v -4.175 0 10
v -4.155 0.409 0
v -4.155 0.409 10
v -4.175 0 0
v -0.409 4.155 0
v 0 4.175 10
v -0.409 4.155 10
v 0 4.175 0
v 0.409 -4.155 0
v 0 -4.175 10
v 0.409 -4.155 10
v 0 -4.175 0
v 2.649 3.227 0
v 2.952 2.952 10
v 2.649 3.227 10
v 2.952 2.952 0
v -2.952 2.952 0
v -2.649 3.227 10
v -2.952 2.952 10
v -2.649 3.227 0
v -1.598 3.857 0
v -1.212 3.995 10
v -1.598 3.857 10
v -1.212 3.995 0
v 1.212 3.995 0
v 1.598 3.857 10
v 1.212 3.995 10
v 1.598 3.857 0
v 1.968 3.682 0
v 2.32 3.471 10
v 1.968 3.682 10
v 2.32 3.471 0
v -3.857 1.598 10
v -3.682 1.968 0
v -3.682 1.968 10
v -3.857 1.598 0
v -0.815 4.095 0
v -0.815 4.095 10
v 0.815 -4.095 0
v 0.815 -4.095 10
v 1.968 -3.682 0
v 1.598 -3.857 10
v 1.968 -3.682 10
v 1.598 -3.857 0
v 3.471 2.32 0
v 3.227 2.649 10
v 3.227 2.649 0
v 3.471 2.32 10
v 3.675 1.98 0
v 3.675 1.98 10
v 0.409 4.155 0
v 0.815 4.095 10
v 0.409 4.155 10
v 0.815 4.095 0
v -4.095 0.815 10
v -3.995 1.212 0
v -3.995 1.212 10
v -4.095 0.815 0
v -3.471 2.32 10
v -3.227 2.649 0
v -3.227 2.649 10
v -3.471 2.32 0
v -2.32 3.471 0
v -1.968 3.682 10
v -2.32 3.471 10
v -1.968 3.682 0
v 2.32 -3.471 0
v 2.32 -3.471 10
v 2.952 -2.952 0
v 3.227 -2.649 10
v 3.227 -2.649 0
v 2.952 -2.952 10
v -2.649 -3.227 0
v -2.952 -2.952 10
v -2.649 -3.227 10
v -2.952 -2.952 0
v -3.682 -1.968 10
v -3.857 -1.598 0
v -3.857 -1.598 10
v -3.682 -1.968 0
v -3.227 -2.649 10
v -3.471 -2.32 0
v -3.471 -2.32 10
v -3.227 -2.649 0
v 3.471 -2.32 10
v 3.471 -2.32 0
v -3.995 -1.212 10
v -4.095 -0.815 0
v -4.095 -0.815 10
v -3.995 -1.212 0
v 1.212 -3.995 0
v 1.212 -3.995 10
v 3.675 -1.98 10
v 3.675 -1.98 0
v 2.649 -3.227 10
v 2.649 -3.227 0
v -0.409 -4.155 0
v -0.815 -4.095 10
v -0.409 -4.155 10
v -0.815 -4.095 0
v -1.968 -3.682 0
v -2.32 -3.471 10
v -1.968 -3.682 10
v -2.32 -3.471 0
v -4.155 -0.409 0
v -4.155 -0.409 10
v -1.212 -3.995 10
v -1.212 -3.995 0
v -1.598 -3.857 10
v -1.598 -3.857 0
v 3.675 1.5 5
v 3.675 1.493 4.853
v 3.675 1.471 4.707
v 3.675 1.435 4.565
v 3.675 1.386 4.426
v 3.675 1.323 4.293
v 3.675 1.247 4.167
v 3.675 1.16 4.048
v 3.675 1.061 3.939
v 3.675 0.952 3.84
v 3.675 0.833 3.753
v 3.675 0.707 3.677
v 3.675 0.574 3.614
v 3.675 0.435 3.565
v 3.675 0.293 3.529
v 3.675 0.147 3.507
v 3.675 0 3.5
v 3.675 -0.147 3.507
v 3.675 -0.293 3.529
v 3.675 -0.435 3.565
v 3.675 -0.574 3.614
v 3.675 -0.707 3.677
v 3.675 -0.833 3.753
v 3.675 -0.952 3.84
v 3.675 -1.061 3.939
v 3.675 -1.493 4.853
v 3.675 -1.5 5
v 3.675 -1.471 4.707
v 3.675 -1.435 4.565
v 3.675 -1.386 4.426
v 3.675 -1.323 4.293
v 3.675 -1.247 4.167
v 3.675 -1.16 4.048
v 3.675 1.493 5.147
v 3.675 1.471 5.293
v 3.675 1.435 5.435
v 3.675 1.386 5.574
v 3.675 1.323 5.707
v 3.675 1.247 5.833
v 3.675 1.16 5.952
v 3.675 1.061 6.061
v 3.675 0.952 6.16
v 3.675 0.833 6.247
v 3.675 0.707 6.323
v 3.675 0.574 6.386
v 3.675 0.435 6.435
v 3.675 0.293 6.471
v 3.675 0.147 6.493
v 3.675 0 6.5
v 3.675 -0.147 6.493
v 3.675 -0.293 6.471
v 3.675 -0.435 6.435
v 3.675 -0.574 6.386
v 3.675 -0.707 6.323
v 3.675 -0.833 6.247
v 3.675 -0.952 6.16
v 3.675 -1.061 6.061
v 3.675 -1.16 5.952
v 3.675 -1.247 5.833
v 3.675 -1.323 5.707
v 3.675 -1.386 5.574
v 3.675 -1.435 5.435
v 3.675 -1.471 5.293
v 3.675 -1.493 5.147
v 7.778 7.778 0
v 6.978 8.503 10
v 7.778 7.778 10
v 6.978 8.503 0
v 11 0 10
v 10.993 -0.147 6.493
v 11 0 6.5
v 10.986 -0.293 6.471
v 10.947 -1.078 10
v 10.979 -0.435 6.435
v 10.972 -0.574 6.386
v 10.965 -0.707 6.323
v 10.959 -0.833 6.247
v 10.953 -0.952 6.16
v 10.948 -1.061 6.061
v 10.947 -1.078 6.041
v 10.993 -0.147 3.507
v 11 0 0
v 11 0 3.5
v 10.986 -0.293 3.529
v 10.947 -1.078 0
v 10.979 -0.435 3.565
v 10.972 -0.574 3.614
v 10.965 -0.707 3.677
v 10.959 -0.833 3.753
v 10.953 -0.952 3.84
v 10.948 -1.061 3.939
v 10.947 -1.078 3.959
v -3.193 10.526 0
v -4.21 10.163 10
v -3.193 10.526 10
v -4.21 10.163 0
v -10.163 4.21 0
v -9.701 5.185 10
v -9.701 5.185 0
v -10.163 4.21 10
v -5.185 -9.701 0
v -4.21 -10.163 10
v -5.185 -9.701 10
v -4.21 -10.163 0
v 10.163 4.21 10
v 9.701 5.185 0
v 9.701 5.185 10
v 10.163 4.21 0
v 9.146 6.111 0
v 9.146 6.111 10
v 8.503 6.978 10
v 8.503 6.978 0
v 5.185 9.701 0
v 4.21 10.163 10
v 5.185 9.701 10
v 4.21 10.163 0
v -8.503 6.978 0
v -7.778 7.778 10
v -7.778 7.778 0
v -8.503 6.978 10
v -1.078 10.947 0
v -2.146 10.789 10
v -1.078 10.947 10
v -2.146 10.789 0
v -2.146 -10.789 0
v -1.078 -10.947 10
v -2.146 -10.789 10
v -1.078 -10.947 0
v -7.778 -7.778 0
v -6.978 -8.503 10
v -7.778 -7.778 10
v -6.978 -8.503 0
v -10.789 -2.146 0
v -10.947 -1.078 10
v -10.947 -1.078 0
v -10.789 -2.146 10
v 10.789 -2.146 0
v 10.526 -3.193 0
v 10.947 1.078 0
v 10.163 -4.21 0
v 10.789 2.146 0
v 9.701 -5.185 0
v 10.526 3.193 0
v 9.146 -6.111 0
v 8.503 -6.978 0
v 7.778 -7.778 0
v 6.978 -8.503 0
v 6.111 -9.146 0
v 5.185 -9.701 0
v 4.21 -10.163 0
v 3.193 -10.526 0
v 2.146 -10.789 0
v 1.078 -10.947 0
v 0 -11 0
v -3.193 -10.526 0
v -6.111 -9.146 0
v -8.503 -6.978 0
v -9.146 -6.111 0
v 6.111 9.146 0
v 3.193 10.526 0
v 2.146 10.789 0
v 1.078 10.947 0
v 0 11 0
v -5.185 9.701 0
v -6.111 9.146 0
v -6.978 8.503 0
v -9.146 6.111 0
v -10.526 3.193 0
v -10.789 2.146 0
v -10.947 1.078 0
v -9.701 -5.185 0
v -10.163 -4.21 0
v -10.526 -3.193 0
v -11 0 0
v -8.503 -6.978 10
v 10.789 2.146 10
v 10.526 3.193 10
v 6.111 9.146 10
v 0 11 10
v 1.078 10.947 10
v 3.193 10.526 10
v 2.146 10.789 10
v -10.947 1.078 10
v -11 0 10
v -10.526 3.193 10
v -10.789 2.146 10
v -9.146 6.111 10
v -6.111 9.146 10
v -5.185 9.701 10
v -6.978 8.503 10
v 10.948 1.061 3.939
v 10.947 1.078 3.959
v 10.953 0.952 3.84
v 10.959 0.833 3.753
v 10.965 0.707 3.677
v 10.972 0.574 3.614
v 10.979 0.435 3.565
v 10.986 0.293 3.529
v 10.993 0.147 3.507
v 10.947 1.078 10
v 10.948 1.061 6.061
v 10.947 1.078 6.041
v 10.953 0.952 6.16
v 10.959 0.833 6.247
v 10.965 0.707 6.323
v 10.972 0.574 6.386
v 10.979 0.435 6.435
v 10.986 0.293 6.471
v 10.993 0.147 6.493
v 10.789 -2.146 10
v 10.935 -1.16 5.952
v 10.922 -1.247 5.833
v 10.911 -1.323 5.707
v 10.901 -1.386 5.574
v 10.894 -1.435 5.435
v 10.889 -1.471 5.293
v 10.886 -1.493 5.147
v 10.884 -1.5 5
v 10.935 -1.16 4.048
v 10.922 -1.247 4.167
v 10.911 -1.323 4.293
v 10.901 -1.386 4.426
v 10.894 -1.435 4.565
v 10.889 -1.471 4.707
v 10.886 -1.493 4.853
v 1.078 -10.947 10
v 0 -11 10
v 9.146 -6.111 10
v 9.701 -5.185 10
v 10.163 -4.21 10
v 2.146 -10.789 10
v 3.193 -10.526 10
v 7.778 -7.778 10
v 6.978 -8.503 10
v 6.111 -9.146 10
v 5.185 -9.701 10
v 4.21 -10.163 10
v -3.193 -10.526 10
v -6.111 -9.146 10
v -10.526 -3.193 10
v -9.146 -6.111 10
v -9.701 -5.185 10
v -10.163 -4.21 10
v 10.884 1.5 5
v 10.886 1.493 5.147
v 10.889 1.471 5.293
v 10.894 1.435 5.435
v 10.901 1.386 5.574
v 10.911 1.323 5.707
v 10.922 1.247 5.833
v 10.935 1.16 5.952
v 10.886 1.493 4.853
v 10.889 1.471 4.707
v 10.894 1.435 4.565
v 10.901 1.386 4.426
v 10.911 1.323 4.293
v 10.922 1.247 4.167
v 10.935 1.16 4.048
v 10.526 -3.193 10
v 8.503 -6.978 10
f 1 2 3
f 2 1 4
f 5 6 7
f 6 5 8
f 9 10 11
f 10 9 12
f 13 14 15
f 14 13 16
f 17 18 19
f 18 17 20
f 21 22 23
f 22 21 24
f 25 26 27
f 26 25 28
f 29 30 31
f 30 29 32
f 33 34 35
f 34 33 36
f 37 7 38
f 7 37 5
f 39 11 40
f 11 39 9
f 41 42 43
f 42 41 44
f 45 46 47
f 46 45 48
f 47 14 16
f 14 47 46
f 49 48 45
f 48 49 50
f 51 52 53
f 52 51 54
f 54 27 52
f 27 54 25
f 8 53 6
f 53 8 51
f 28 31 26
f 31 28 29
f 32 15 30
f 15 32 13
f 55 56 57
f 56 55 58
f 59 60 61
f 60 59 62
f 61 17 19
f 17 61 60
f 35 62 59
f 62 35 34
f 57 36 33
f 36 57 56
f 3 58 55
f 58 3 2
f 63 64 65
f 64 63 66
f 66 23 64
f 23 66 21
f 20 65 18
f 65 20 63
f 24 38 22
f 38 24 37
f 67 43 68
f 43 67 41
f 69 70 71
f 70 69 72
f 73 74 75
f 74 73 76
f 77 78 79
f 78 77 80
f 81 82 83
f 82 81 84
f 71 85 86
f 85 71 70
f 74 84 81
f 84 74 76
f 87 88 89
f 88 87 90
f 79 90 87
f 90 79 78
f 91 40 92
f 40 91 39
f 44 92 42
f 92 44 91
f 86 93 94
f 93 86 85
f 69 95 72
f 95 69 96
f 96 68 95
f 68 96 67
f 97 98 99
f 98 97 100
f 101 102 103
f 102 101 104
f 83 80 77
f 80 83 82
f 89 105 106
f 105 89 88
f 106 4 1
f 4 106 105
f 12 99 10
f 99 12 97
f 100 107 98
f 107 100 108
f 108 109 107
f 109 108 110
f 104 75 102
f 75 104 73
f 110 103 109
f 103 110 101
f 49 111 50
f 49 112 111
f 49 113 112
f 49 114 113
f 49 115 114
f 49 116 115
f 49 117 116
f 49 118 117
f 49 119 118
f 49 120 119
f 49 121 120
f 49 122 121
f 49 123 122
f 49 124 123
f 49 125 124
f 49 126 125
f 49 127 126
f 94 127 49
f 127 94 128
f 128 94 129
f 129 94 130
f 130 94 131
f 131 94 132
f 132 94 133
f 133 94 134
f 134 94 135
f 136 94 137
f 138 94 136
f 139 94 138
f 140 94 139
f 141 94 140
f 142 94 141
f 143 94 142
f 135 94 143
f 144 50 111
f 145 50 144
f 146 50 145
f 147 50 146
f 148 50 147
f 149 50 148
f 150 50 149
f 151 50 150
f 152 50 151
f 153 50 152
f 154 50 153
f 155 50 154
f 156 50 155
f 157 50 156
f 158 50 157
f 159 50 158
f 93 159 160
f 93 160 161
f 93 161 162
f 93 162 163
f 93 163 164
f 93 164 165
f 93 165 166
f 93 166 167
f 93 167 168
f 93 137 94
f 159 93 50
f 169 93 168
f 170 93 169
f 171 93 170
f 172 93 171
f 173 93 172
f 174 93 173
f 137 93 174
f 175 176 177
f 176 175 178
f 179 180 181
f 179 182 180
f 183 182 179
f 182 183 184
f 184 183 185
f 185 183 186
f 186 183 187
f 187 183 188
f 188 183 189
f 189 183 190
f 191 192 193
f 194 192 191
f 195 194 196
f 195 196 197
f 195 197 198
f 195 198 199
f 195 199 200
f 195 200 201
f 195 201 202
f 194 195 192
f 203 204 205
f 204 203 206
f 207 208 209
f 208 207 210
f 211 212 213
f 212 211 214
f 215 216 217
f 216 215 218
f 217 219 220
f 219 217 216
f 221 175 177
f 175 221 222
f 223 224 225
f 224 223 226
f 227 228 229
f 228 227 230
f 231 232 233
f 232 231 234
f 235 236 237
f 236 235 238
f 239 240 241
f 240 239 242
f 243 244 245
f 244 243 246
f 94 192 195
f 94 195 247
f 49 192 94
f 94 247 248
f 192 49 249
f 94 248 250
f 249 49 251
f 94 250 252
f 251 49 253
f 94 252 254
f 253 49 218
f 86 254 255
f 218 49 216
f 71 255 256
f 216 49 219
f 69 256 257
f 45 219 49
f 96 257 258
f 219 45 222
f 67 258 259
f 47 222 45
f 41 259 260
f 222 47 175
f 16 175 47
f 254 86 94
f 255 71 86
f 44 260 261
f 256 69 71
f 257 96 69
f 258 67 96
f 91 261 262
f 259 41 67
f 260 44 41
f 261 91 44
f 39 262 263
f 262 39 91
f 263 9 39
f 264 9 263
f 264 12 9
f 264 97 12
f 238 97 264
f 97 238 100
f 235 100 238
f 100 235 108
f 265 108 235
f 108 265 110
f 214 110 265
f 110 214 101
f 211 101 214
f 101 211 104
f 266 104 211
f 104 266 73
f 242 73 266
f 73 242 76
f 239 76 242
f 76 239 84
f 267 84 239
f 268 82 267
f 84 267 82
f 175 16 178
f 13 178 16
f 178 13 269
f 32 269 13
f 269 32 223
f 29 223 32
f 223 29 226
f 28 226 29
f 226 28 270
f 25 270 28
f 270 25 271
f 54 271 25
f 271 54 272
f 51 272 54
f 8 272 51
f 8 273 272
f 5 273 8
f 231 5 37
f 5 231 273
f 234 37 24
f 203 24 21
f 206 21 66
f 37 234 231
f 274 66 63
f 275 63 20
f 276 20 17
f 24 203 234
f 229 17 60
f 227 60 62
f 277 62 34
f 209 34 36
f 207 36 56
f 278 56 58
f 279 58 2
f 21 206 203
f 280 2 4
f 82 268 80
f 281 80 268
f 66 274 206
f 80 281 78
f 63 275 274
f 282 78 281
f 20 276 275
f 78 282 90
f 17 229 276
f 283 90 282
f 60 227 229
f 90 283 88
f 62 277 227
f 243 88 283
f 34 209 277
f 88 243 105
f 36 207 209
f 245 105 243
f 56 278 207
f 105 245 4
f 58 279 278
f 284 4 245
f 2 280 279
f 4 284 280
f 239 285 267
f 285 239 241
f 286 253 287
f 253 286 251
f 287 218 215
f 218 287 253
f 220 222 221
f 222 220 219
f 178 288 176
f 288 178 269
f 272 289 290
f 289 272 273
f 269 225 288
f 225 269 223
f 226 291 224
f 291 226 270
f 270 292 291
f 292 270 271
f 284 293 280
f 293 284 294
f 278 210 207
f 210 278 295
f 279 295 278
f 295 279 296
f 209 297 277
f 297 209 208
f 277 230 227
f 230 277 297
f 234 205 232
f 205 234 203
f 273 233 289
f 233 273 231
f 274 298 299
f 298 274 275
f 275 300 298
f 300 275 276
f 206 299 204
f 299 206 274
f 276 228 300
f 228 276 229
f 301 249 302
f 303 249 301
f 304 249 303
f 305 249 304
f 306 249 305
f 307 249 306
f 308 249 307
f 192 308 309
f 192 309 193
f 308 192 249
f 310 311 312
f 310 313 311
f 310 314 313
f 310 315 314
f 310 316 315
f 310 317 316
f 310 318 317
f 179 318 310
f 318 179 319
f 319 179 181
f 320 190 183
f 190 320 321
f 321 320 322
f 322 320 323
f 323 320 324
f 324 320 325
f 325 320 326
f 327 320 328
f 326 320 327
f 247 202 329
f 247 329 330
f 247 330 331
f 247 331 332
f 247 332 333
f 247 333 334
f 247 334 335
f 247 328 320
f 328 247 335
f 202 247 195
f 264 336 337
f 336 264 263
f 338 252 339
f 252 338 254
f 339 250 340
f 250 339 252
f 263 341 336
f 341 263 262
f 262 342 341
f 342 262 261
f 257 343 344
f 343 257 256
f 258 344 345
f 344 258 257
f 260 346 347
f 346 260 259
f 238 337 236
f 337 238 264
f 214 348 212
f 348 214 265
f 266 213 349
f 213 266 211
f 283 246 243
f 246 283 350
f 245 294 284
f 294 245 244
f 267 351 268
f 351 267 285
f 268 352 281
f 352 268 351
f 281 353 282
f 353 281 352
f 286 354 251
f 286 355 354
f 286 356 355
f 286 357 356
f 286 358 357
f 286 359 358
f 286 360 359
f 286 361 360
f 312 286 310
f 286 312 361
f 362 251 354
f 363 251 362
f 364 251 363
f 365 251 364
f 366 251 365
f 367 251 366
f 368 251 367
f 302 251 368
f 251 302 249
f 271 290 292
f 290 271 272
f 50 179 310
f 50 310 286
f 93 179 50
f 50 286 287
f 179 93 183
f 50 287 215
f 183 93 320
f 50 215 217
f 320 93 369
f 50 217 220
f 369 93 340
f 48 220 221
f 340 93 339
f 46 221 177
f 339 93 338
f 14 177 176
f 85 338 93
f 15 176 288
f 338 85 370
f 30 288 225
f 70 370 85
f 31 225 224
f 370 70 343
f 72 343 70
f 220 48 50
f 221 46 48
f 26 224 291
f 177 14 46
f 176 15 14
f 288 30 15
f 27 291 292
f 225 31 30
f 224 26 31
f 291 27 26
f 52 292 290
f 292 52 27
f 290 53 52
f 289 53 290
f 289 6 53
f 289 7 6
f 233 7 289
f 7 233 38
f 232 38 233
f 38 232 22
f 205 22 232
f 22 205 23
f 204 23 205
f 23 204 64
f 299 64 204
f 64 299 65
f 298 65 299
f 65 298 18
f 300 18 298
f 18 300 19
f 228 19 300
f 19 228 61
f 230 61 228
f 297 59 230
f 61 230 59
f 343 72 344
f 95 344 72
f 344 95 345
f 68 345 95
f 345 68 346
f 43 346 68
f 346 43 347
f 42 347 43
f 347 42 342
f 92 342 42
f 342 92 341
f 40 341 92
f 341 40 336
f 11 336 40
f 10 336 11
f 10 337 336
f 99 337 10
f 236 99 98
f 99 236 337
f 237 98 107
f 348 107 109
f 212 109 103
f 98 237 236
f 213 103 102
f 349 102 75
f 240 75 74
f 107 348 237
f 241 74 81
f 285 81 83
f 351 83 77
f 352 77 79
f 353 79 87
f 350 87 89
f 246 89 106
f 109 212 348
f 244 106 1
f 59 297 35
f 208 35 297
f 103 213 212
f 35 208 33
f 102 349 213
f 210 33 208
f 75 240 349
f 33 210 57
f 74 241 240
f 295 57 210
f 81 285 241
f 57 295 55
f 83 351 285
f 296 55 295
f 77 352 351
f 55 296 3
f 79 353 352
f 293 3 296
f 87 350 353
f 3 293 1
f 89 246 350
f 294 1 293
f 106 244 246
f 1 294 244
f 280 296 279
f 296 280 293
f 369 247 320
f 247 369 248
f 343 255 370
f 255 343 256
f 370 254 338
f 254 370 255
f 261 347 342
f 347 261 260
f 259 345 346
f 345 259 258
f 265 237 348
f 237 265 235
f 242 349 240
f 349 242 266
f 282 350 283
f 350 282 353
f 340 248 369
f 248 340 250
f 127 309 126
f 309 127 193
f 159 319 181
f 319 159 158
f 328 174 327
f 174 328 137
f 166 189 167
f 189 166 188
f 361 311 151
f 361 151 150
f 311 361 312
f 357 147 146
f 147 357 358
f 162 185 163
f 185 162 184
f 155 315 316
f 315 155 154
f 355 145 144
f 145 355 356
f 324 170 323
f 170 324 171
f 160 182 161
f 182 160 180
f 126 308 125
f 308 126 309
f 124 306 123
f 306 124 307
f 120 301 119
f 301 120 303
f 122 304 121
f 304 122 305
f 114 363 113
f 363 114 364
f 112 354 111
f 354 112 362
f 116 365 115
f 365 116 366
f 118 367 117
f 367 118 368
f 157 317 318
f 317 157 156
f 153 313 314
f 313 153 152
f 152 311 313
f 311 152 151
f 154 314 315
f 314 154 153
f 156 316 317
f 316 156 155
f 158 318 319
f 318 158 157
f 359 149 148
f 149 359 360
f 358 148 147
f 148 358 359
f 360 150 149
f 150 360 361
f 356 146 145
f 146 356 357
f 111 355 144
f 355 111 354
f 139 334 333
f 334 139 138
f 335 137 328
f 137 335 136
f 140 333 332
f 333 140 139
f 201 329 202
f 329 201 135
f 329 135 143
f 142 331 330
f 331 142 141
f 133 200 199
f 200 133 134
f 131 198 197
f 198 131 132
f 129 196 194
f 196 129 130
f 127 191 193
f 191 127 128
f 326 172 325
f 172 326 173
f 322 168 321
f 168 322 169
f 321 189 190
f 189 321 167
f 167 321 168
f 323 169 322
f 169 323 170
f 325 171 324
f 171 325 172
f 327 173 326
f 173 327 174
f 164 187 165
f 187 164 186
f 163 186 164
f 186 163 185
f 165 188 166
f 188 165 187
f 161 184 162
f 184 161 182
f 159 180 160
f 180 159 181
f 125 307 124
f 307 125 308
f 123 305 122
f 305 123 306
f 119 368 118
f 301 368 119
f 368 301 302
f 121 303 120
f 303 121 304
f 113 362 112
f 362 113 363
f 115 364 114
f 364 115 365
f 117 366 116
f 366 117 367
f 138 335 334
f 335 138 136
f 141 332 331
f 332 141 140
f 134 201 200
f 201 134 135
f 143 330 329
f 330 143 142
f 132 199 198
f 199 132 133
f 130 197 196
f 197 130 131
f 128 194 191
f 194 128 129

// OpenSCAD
// file: parameters.scad
// =============================================================================
// Gen-BY — nightly 2026-10-11 (physics_scorer, honest magpylib watts)
// Stator-only upgrade for an existing Gen-BU: the R66 rotors and Ø158 steel are reused unchanged, and a new 12-bobbin stator with thinner 7.2 mm copper (gap 10.70 → 9.80 mm) and longer r48–84 bobbins (more copper outside the magnet ring) replaces the old one, together with a shorter gap sleeve and wider-spaced frame rods. It is the modular swap path: no new magnets or steel.
// Clocking 0 deg (magnets N facing S) + D-flat keyed bore + index notch + flip-symmetric hole map.
// Windable 2-piece bobbin; turns = physics_scorer turns_fit; copper only between flanges.
// Steel back-iron: 2× Ø158 × 4.76 mm (3/16") mild-steel discs (steel_backiron_disc.dxf); magnets sit ON the steel
// (through-pockets) -> score with --back-iron. Night 2026-10-11.
// =============================================================================
topology            = "dual_rotor";

// --- Wire / winding (physics_scorer winding-fit) -------------------------------
wire_awg            = 26;
wire_od             = 0.45;     // insulated OD mm (bare 0.405)
fill_realistic      = 0.65;     // insulated-wire area / window (DENSE layered wind with a jig; scorer cap 0.65)
turns               = 410;       // = physics_scorer turns_fit (do NOT raise)
coil_former_type    = "bobbin";
coil_core_inset     = 13.95;     // radial copper build: hub = copper boundary inset by this
wind_build_axial    = 0.0;      // nothing proud of the flanges
wind_build_radial   = 0.0;

// --- Bobbin (base + lid) ---------------------------------------------------------
coil_id_r           = 48.00;    // copper boundary sector
coil_od_r           = 84.00;
span_deg            = 26.06;    // = pitch - 2*asin((wall+0.85)/coil_id_r) -> >=1.2 mm stator web
former_web          = 7.20;     // copper height between flanges (TALL copper: steel keeps Bz up)
flange_t            = 0.80;     // >= 0.8 mm FDM wall rule (tall winds push on the flanges)
wall                = 0.80;     // flange lip beyond copper
former_bare_h       = former_web + 2 * flange_t;
coil_envelope_h     = former_bare_h + 2 * wind_build_axial;
tab_w               = 7.0;
tab_len             = 7.0;
tab_h               = former_bare_h / 2;
pin_d               = 1.9;      // 1.75 mm filament locating pin
coil_mount_r        = coil_od_r + 0.2 + 4.0;
lead_y              = 1.6;
lead_slot_w         = 0.9;
lead_groove_d       = 0.6;

// --- Gap -------------------------------------------------------------------------
run_clear           = 0.50;     // rotor face -> flange
gap_spacer_h        = run_clear + wind_build_axial;
m2m                 = coil_envelope_h + 2 * run_clear;   // rotor face to rotor face (= gap_sleeve length)

// --- Stator ----------------------------------------------------------------------
coil_stations       = 12;
bay_clear           = 0.25;
stator_thick        = former_bare_h;                        // bobbins flush both faces
stator_od           = 186.0;
shaft_clear_stator  = 14.0;     // stator is static; gap sleeve OD 12 spins inside

// --- Rotor(s) --------------------------------------------------------------------
magnet_Br           = 1.43;     // N52
magnet_d_large      = 20.0;
magnet_h_large      = 5.0;      // one O20x5 per pocket
magnet_h_small      = 5.0;      // unused: no O5 pockets in this kit
halbach_magnetisation = "none";  // NO O5 assist magnets in this kit (scan: they lower the 4-pole score)
rotor_b_same_axis   = true;     // same-index magnets share one axis: N faces S across the gap
large_pocket_d      = 20.3;
small_pocket_d      = 5.3;
pocket_h            = 5.00;     // THROUGH the carrier: magnet back face sits on the steel disc (FLUSH seat: carrier = magnet height, magnet face level with the rotor face)
large_n             = 8;
R_large             = 66.0;
small_r_list        = [];       // no O5 pockets
carrier_od          = 158.0;
carrier_thick       = pocket_h;
hub_h               = 12.0;     // > steel_t + insert: radial set-screw clears the steel
hub_od              = 24.0;     // slim hub so the M4 brace rods fit at R~18 inside the coil ring
hub_insert_d        = 4.0;      // M3 heat-set insert, radial, bears on the D-flat
rotor_b_offset_deg  = 0.0;      // CLOCKING: magnets directly opposite
shaft_key           = "dflat";
dflat_depth         = 0.5;      // 8 mm shaft with 0.5 mm flat (7.5 across flat)
index_notch_d       = 3.0;

// --- Steel back-iron (buyable laser-cut) -------------------------------------------
steel_t             = 4.76;      // mild steel thickness (image method ignores it; sized from steel_flux.py so the return path stays well below saturation)
steel_center_hole   = 26.0;     // slips over the rotor hub (OD 24)
steel_od            = carrier_od;   // steel disc OD = rotor carrier OD

// --- Modular MAX interface ----------------------------------------------------------
shaft_bore          = 8.35;
dflat_x             = 4.0 - dflat_depth + (shaft_bore - 8.0) / 2;
bearing_d           = 21.85;
bearing_h           = 7.2;
m3_clear            = 3.5;
bolt_r_inner        = 30.0;     // M3 steel-disc clamp bolts (inside the magnet ring)
bolt_n_inner        = 4;
bolt_inner_angles   = [0, 90, 180, 270];
bolt_r_outer        = 44.0;     // second M3 steel-disc clamp ring
bolt_outer_angles   = [67.5, 112.5, 247.5, 292.5];
flange_bolt_r       = 88.0;     // frame rods: OUTSIDE the rotor OD (rotors spin inside them)
flange_bolt_n       = 4;
flange_bolt_offset  = 45.00;    // between coil stations -> never cuts a lead groove/tab
brace_r             = 18.0;
brace_d             = 4.3;      // temporary M4 jack rods (assembly only)
brace_n             = 4;
brace_angles        = [45, 135, 225, 315];          // flip-symmetric

spacer_pad_od       = 14.0;
spacer_pad_id       = m3_clear;
endbell_od          = 186.0;
endbell_thick       = 8.0;
endbell_shaft_clear = 10.0;
collar_h            = 10.0;
standoff_od         = 9.0;
frame_standoff_h    = run_clear + carrier_thick + hub_h + collar_h + 2.0;
sleeve_od           = 12.0;
plate_max_mm        = 410;

$fn = 64;
// main file
// Gen-BY — shaft collar with D-flat bore (set screw bears on the flat); print x4
include <parameters.scad>;
$fn = 64;
// D-flat keyed bore: flat faces +X (angle 0 = magnet pocket 0 = index notch)
module dflat_bore(h) {
    intersection() {
        cylinder(d=shaft_bore, h=h);
        translate([-shaft_bore, -shaft_bore, 0]) cube([shaft_bore + dflat_x, 2*shaft_bore, h]);
    }
}

od = 22; h = collar_h; set_d = 3.0;
difference() {
    cylinder(d=od, h=h);
    translate([0, 0, -0.1]) dflat_bore(h + 0.2);
    translate([0, 0, h/2]) rotate([0, 90, 0]) cylinder(d=set_d, h=od);
}
